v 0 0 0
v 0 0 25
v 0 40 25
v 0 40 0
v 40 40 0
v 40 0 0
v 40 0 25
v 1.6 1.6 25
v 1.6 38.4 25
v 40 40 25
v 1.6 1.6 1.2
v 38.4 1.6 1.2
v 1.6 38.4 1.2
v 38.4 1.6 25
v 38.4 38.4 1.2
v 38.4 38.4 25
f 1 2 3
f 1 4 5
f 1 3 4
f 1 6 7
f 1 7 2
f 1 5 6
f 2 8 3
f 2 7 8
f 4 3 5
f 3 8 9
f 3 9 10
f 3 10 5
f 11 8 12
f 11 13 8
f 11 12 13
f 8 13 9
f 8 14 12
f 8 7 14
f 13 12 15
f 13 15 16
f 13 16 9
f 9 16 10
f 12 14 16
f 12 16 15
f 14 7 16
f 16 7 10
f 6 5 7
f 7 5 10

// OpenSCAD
// Electronics Storage — 1x1 Small Bin
// 40 x 40 x 25 mm open-top bin for small components:
// resistors, capacitors, LEDs, header pins, screw packs.
// Shares 40 mm footprint with all other bins in this project so
// they tile side-by-side on any flat surface.

$fn = 48;

W     = 40;
D     = 40;
H     = 25;
WALL  = 1.6;
FLOOR = 1.2;

difference() {
    cube([W, D, H]);
    translate([WALL, WALL, FLOOR])
        cube([W - 2*WALL, D - 2*WALL, H]);
}
